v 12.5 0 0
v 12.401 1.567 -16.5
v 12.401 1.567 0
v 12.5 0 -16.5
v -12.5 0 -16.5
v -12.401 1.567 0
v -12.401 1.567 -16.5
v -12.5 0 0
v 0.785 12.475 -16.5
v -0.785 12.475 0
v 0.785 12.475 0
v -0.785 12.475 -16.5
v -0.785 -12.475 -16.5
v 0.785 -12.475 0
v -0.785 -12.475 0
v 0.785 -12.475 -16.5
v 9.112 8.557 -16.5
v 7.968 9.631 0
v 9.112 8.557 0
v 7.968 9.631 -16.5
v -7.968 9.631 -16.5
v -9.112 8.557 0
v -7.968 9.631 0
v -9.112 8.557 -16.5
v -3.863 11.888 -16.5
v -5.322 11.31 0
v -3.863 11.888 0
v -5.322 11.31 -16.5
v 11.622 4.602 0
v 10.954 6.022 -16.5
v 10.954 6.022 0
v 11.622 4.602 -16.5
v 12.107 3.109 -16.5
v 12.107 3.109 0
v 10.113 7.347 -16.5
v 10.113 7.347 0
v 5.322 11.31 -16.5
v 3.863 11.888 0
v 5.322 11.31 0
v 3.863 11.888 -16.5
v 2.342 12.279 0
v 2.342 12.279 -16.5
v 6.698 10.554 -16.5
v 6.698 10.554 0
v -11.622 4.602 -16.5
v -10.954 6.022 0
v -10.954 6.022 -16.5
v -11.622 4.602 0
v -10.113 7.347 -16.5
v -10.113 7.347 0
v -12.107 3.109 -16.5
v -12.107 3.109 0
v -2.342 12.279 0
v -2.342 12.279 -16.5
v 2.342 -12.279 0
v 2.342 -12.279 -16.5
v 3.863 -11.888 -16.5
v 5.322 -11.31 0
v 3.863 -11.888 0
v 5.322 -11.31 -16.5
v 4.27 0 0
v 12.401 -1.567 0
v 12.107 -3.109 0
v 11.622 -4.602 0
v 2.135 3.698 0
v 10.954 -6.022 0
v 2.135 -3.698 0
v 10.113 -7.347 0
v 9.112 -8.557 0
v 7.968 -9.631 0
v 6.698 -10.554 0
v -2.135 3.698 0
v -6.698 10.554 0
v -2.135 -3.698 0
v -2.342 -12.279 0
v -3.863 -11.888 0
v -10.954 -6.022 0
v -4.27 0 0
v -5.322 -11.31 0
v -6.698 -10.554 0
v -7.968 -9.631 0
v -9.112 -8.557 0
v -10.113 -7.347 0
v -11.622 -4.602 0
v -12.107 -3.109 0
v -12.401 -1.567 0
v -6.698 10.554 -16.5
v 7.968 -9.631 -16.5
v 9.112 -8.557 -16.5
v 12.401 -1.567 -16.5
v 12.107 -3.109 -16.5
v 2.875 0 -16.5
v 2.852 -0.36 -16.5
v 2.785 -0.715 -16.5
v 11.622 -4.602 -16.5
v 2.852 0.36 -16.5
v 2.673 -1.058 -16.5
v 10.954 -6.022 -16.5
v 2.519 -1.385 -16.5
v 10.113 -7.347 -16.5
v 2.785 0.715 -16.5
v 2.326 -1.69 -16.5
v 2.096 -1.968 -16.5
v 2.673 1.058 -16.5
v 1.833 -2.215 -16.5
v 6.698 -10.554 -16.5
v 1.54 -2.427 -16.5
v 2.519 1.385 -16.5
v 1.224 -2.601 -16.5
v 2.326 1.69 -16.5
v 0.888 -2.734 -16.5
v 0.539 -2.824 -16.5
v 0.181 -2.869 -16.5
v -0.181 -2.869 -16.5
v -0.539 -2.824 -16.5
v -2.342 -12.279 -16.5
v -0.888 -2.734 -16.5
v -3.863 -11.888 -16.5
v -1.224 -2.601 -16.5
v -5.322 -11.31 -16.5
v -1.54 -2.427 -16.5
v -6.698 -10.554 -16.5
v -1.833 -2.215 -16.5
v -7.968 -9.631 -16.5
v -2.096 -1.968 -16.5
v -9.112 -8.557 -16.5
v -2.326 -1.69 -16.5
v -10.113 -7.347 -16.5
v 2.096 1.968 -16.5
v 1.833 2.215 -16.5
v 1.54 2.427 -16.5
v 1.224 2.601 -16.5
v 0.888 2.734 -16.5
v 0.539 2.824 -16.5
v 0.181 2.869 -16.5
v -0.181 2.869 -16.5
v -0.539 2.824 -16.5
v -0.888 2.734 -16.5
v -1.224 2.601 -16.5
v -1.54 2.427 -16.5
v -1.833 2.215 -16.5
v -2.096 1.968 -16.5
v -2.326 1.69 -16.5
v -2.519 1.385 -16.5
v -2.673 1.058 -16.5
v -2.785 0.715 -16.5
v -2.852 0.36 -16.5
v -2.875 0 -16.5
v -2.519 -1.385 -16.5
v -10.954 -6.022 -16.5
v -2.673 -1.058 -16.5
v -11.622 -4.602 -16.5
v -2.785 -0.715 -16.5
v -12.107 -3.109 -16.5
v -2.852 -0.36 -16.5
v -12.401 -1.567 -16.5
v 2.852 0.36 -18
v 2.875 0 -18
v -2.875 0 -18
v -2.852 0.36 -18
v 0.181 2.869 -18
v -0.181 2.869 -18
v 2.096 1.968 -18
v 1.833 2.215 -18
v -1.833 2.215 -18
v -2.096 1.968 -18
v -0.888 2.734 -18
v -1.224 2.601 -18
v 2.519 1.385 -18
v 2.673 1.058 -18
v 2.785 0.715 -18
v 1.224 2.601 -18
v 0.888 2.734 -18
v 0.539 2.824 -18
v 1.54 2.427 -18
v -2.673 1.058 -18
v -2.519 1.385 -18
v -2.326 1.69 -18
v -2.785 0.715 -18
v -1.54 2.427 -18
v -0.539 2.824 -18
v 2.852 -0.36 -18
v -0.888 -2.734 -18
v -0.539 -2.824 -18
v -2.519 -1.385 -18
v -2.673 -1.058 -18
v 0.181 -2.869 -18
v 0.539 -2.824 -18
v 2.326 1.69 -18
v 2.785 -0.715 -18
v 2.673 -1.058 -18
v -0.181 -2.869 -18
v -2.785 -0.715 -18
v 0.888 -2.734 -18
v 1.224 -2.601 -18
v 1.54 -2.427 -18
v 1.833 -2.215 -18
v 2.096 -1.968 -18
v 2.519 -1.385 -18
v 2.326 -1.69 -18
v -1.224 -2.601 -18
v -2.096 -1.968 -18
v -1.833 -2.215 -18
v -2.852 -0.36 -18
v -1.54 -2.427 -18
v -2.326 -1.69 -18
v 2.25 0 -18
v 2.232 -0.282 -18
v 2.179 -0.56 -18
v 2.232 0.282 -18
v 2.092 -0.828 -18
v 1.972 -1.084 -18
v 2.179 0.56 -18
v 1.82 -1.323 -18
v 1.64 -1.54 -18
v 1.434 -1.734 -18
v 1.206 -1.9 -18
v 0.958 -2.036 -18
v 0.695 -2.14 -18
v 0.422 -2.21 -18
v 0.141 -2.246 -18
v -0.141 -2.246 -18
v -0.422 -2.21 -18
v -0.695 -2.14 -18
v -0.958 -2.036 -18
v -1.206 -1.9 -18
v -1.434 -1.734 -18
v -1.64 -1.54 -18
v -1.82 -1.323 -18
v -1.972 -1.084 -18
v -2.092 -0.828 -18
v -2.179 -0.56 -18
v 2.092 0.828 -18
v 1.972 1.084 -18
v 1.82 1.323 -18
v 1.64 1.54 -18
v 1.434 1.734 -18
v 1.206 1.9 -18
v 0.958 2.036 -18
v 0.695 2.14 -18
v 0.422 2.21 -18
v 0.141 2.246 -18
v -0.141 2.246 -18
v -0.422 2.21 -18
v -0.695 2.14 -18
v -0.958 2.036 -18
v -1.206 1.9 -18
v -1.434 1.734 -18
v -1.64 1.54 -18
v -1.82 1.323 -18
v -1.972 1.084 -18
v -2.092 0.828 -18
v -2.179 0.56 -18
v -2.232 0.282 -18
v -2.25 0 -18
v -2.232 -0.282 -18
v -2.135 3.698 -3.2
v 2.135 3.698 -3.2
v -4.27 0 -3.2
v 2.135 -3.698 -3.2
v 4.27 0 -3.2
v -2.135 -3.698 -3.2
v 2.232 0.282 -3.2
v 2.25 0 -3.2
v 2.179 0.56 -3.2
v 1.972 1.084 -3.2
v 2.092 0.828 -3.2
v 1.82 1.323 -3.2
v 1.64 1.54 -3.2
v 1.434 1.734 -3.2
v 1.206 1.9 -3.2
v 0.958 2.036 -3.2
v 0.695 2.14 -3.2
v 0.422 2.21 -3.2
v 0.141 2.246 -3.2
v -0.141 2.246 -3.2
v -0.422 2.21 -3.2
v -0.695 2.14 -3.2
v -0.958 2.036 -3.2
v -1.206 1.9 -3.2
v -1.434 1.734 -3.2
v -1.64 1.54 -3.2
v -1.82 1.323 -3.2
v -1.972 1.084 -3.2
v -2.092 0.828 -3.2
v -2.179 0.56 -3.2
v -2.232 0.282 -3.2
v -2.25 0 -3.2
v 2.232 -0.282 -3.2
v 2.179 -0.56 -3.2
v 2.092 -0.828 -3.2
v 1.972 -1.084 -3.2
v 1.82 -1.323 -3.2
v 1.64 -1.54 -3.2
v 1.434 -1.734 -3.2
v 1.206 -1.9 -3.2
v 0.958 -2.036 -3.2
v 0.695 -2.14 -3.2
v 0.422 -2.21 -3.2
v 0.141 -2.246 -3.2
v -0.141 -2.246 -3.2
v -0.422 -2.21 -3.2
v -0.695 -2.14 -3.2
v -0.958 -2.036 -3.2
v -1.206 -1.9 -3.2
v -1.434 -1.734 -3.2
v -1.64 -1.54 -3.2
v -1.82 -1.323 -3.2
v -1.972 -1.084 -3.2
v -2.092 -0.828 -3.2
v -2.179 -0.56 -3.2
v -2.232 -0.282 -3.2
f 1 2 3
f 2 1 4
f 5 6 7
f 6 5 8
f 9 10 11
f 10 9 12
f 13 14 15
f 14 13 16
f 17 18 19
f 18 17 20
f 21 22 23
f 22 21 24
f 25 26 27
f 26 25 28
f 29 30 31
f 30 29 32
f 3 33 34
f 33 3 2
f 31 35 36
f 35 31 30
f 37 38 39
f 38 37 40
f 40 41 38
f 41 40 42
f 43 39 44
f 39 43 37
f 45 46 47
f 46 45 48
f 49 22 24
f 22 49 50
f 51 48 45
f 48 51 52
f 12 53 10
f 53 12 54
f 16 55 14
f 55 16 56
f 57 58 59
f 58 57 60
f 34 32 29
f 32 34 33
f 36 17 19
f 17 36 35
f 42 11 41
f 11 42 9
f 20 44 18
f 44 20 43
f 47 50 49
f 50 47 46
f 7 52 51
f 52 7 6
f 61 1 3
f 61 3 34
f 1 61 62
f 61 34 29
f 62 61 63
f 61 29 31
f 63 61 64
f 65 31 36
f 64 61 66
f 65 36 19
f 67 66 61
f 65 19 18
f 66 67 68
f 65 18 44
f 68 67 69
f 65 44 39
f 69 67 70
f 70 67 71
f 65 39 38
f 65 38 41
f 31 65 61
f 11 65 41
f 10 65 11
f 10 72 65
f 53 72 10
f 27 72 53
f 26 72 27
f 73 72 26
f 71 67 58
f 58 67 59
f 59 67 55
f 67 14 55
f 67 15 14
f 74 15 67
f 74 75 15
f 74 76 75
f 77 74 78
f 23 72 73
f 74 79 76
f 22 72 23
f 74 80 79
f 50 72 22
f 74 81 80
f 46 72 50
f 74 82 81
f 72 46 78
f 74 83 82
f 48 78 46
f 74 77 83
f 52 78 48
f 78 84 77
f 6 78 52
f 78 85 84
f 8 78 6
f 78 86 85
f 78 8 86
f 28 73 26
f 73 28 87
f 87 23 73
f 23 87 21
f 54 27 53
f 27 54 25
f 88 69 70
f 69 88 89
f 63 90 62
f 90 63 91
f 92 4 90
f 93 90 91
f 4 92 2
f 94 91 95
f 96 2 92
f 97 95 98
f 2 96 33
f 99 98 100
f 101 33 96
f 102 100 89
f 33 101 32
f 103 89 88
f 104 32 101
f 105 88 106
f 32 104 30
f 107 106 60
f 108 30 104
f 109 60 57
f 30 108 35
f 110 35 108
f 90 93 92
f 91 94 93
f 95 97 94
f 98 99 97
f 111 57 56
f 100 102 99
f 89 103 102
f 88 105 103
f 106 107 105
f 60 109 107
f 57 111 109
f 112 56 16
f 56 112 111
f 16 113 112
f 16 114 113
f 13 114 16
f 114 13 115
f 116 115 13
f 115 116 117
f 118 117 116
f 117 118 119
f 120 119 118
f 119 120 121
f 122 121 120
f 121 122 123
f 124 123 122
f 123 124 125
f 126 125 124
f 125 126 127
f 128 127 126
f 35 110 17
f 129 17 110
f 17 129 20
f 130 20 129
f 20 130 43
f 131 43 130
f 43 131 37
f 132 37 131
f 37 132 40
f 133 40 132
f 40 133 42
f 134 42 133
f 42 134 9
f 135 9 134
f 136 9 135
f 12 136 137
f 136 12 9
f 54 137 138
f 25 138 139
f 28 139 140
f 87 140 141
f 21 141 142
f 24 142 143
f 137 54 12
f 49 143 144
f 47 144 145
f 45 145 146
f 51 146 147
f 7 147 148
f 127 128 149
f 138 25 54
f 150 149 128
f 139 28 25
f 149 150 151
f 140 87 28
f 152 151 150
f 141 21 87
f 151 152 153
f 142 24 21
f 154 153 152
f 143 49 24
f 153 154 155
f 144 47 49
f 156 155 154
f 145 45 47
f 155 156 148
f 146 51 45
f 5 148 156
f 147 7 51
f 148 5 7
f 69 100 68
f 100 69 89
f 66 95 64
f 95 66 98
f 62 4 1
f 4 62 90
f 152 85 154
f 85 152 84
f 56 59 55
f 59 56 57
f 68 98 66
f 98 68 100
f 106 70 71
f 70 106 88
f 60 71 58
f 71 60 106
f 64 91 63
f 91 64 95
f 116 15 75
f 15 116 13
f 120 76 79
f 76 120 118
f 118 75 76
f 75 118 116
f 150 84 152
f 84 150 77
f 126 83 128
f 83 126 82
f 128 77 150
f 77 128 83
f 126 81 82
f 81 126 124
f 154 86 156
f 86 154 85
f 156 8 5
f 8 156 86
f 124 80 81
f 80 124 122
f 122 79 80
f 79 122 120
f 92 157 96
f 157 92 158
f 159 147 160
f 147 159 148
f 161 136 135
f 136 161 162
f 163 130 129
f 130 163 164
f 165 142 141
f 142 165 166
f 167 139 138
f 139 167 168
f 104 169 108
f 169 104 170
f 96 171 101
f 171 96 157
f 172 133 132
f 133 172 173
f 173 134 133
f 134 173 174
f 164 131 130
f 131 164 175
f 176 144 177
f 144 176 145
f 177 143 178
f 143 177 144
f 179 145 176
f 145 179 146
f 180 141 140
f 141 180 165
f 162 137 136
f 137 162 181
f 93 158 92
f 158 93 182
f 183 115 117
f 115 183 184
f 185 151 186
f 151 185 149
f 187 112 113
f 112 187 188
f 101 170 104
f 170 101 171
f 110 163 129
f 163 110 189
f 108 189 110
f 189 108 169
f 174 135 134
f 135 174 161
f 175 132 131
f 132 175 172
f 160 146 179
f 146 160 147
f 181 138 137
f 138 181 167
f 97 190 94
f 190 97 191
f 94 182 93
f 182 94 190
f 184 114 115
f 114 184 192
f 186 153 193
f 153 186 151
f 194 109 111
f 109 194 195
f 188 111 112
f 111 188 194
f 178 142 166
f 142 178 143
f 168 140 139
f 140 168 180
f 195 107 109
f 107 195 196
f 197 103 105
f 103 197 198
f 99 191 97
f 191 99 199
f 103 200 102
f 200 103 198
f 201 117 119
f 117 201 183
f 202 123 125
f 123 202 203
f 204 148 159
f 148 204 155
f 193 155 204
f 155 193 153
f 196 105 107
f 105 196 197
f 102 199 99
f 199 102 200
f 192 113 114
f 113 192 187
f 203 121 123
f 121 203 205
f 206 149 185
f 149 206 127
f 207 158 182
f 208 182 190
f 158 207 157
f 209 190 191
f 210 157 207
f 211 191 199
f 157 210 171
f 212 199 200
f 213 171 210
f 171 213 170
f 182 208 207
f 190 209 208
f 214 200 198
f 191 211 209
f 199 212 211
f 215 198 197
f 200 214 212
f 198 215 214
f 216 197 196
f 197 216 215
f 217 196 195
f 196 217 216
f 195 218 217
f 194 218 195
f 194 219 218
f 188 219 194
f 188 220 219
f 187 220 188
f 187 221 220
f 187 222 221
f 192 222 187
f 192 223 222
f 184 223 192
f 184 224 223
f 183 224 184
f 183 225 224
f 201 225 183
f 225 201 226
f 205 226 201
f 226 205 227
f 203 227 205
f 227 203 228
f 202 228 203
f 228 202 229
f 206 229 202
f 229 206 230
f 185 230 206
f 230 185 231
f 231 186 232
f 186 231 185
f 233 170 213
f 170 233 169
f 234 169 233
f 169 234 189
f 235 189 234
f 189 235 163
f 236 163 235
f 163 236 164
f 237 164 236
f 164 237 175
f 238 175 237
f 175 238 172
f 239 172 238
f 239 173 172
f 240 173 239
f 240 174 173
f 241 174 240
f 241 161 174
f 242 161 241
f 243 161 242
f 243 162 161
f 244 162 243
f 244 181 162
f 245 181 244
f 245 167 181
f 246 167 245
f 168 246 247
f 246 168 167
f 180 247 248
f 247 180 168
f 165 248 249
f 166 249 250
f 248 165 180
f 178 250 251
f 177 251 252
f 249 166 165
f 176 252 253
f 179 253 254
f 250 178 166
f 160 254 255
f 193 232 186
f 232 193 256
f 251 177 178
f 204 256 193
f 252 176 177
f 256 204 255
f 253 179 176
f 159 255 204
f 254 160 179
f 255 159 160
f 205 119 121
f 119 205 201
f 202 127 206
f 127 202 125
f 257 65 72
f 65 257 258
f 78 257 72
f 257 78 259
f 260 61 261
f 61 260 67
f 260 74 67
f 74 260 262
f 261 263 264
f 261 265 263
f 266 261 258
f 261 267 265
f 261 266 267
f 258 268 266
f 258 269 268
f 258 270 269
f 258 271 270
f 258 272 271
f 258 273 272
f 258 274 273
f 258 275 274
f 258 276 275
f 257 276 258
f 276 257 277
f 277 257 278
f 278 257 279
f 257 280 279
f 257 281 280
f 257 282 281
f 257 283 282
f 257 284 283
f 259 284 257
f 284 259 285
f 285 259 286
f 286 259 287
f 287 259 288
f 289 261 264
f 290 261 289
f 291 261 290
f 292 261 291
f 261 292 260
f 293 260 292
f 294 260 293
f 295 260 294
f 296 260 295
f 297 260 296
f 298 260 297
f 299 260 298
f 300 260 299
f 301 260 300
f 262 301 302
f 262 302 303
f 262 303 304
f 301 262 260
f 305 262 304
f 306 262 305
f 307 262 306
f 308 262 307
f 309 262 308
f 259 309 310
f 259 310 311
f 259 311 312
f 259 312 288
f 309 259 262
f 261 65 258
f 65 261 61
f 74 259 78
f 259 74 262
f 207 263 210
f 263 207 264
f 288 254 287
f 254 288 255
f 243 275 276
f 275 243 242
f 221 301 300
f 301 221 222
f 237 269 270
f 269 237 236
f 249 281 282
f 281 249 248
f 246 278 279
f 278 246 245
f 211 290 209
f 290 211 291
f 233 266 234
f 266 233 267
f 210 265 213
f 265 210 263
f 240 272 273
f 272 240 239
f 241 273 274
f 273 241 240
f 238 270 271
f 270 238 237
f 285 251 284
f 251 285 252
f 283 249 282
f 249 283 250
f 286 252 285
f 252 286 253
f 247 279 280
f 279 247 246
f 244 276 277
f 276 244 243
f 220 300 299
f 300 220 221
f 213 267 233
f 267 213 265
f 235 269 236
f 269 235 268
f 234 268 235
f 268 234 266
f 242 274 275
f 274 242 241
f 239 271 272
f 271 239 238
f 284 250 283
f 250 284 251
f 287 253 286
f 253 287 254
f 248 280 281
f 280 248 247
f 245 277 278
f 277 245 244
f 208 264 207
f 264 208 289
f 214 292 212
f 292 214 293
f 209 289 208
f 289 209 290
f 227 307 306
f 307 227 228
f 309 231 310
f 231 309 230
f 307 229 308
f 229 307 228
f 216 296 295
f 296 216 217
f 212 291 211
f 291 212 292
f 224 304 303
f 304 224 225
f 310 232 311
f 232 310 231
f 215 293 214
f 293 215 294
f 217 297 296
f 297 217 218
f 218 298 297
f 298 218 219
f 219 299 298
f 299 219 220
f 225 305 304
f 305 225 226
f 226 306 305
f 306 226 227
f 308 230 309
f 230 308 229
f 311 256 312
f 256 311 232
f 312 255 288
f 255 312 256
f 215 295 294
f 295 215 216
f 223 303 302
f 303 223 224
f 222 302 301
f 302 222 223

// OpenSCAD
$fn = 50;


difference() {
	union() {
		translate(v = [0, 0, -16.5000000000]) {
			cylinder(h = 16.5000000000, r = 12.5000000000);
		}
		#translate(v = [0, 0, -18.0000000000]) {
			cylinder(h = 18, r = 2.8750000000);
		}
	}
	union() {
		translate(v = [0, 0, 0]) {
			rotate(a = [0, 0, 0]) {
				difference() {
					union() {
						translate(v = [0, 0, -3.2000000000]) {
							linear_extrude(height = 3.2000000000) {
								polygon(points = [[4.2698000000, 0.0000000000], [2.1349000000, 3.6977552691], [-2.1349000000, 3.6977552691], [-4.2698000000, 0.0000000000], [-2.1349000000, -3.6977552691], [2.1349000000, -3.6977552691]]);
							}
						}
					}
					union();
				}
			}
		}
		#translate(v = [0, 0, -100.0000000000]) {
			cylinder(h = 200, r = 2.2500000000);
		}
	}
}
